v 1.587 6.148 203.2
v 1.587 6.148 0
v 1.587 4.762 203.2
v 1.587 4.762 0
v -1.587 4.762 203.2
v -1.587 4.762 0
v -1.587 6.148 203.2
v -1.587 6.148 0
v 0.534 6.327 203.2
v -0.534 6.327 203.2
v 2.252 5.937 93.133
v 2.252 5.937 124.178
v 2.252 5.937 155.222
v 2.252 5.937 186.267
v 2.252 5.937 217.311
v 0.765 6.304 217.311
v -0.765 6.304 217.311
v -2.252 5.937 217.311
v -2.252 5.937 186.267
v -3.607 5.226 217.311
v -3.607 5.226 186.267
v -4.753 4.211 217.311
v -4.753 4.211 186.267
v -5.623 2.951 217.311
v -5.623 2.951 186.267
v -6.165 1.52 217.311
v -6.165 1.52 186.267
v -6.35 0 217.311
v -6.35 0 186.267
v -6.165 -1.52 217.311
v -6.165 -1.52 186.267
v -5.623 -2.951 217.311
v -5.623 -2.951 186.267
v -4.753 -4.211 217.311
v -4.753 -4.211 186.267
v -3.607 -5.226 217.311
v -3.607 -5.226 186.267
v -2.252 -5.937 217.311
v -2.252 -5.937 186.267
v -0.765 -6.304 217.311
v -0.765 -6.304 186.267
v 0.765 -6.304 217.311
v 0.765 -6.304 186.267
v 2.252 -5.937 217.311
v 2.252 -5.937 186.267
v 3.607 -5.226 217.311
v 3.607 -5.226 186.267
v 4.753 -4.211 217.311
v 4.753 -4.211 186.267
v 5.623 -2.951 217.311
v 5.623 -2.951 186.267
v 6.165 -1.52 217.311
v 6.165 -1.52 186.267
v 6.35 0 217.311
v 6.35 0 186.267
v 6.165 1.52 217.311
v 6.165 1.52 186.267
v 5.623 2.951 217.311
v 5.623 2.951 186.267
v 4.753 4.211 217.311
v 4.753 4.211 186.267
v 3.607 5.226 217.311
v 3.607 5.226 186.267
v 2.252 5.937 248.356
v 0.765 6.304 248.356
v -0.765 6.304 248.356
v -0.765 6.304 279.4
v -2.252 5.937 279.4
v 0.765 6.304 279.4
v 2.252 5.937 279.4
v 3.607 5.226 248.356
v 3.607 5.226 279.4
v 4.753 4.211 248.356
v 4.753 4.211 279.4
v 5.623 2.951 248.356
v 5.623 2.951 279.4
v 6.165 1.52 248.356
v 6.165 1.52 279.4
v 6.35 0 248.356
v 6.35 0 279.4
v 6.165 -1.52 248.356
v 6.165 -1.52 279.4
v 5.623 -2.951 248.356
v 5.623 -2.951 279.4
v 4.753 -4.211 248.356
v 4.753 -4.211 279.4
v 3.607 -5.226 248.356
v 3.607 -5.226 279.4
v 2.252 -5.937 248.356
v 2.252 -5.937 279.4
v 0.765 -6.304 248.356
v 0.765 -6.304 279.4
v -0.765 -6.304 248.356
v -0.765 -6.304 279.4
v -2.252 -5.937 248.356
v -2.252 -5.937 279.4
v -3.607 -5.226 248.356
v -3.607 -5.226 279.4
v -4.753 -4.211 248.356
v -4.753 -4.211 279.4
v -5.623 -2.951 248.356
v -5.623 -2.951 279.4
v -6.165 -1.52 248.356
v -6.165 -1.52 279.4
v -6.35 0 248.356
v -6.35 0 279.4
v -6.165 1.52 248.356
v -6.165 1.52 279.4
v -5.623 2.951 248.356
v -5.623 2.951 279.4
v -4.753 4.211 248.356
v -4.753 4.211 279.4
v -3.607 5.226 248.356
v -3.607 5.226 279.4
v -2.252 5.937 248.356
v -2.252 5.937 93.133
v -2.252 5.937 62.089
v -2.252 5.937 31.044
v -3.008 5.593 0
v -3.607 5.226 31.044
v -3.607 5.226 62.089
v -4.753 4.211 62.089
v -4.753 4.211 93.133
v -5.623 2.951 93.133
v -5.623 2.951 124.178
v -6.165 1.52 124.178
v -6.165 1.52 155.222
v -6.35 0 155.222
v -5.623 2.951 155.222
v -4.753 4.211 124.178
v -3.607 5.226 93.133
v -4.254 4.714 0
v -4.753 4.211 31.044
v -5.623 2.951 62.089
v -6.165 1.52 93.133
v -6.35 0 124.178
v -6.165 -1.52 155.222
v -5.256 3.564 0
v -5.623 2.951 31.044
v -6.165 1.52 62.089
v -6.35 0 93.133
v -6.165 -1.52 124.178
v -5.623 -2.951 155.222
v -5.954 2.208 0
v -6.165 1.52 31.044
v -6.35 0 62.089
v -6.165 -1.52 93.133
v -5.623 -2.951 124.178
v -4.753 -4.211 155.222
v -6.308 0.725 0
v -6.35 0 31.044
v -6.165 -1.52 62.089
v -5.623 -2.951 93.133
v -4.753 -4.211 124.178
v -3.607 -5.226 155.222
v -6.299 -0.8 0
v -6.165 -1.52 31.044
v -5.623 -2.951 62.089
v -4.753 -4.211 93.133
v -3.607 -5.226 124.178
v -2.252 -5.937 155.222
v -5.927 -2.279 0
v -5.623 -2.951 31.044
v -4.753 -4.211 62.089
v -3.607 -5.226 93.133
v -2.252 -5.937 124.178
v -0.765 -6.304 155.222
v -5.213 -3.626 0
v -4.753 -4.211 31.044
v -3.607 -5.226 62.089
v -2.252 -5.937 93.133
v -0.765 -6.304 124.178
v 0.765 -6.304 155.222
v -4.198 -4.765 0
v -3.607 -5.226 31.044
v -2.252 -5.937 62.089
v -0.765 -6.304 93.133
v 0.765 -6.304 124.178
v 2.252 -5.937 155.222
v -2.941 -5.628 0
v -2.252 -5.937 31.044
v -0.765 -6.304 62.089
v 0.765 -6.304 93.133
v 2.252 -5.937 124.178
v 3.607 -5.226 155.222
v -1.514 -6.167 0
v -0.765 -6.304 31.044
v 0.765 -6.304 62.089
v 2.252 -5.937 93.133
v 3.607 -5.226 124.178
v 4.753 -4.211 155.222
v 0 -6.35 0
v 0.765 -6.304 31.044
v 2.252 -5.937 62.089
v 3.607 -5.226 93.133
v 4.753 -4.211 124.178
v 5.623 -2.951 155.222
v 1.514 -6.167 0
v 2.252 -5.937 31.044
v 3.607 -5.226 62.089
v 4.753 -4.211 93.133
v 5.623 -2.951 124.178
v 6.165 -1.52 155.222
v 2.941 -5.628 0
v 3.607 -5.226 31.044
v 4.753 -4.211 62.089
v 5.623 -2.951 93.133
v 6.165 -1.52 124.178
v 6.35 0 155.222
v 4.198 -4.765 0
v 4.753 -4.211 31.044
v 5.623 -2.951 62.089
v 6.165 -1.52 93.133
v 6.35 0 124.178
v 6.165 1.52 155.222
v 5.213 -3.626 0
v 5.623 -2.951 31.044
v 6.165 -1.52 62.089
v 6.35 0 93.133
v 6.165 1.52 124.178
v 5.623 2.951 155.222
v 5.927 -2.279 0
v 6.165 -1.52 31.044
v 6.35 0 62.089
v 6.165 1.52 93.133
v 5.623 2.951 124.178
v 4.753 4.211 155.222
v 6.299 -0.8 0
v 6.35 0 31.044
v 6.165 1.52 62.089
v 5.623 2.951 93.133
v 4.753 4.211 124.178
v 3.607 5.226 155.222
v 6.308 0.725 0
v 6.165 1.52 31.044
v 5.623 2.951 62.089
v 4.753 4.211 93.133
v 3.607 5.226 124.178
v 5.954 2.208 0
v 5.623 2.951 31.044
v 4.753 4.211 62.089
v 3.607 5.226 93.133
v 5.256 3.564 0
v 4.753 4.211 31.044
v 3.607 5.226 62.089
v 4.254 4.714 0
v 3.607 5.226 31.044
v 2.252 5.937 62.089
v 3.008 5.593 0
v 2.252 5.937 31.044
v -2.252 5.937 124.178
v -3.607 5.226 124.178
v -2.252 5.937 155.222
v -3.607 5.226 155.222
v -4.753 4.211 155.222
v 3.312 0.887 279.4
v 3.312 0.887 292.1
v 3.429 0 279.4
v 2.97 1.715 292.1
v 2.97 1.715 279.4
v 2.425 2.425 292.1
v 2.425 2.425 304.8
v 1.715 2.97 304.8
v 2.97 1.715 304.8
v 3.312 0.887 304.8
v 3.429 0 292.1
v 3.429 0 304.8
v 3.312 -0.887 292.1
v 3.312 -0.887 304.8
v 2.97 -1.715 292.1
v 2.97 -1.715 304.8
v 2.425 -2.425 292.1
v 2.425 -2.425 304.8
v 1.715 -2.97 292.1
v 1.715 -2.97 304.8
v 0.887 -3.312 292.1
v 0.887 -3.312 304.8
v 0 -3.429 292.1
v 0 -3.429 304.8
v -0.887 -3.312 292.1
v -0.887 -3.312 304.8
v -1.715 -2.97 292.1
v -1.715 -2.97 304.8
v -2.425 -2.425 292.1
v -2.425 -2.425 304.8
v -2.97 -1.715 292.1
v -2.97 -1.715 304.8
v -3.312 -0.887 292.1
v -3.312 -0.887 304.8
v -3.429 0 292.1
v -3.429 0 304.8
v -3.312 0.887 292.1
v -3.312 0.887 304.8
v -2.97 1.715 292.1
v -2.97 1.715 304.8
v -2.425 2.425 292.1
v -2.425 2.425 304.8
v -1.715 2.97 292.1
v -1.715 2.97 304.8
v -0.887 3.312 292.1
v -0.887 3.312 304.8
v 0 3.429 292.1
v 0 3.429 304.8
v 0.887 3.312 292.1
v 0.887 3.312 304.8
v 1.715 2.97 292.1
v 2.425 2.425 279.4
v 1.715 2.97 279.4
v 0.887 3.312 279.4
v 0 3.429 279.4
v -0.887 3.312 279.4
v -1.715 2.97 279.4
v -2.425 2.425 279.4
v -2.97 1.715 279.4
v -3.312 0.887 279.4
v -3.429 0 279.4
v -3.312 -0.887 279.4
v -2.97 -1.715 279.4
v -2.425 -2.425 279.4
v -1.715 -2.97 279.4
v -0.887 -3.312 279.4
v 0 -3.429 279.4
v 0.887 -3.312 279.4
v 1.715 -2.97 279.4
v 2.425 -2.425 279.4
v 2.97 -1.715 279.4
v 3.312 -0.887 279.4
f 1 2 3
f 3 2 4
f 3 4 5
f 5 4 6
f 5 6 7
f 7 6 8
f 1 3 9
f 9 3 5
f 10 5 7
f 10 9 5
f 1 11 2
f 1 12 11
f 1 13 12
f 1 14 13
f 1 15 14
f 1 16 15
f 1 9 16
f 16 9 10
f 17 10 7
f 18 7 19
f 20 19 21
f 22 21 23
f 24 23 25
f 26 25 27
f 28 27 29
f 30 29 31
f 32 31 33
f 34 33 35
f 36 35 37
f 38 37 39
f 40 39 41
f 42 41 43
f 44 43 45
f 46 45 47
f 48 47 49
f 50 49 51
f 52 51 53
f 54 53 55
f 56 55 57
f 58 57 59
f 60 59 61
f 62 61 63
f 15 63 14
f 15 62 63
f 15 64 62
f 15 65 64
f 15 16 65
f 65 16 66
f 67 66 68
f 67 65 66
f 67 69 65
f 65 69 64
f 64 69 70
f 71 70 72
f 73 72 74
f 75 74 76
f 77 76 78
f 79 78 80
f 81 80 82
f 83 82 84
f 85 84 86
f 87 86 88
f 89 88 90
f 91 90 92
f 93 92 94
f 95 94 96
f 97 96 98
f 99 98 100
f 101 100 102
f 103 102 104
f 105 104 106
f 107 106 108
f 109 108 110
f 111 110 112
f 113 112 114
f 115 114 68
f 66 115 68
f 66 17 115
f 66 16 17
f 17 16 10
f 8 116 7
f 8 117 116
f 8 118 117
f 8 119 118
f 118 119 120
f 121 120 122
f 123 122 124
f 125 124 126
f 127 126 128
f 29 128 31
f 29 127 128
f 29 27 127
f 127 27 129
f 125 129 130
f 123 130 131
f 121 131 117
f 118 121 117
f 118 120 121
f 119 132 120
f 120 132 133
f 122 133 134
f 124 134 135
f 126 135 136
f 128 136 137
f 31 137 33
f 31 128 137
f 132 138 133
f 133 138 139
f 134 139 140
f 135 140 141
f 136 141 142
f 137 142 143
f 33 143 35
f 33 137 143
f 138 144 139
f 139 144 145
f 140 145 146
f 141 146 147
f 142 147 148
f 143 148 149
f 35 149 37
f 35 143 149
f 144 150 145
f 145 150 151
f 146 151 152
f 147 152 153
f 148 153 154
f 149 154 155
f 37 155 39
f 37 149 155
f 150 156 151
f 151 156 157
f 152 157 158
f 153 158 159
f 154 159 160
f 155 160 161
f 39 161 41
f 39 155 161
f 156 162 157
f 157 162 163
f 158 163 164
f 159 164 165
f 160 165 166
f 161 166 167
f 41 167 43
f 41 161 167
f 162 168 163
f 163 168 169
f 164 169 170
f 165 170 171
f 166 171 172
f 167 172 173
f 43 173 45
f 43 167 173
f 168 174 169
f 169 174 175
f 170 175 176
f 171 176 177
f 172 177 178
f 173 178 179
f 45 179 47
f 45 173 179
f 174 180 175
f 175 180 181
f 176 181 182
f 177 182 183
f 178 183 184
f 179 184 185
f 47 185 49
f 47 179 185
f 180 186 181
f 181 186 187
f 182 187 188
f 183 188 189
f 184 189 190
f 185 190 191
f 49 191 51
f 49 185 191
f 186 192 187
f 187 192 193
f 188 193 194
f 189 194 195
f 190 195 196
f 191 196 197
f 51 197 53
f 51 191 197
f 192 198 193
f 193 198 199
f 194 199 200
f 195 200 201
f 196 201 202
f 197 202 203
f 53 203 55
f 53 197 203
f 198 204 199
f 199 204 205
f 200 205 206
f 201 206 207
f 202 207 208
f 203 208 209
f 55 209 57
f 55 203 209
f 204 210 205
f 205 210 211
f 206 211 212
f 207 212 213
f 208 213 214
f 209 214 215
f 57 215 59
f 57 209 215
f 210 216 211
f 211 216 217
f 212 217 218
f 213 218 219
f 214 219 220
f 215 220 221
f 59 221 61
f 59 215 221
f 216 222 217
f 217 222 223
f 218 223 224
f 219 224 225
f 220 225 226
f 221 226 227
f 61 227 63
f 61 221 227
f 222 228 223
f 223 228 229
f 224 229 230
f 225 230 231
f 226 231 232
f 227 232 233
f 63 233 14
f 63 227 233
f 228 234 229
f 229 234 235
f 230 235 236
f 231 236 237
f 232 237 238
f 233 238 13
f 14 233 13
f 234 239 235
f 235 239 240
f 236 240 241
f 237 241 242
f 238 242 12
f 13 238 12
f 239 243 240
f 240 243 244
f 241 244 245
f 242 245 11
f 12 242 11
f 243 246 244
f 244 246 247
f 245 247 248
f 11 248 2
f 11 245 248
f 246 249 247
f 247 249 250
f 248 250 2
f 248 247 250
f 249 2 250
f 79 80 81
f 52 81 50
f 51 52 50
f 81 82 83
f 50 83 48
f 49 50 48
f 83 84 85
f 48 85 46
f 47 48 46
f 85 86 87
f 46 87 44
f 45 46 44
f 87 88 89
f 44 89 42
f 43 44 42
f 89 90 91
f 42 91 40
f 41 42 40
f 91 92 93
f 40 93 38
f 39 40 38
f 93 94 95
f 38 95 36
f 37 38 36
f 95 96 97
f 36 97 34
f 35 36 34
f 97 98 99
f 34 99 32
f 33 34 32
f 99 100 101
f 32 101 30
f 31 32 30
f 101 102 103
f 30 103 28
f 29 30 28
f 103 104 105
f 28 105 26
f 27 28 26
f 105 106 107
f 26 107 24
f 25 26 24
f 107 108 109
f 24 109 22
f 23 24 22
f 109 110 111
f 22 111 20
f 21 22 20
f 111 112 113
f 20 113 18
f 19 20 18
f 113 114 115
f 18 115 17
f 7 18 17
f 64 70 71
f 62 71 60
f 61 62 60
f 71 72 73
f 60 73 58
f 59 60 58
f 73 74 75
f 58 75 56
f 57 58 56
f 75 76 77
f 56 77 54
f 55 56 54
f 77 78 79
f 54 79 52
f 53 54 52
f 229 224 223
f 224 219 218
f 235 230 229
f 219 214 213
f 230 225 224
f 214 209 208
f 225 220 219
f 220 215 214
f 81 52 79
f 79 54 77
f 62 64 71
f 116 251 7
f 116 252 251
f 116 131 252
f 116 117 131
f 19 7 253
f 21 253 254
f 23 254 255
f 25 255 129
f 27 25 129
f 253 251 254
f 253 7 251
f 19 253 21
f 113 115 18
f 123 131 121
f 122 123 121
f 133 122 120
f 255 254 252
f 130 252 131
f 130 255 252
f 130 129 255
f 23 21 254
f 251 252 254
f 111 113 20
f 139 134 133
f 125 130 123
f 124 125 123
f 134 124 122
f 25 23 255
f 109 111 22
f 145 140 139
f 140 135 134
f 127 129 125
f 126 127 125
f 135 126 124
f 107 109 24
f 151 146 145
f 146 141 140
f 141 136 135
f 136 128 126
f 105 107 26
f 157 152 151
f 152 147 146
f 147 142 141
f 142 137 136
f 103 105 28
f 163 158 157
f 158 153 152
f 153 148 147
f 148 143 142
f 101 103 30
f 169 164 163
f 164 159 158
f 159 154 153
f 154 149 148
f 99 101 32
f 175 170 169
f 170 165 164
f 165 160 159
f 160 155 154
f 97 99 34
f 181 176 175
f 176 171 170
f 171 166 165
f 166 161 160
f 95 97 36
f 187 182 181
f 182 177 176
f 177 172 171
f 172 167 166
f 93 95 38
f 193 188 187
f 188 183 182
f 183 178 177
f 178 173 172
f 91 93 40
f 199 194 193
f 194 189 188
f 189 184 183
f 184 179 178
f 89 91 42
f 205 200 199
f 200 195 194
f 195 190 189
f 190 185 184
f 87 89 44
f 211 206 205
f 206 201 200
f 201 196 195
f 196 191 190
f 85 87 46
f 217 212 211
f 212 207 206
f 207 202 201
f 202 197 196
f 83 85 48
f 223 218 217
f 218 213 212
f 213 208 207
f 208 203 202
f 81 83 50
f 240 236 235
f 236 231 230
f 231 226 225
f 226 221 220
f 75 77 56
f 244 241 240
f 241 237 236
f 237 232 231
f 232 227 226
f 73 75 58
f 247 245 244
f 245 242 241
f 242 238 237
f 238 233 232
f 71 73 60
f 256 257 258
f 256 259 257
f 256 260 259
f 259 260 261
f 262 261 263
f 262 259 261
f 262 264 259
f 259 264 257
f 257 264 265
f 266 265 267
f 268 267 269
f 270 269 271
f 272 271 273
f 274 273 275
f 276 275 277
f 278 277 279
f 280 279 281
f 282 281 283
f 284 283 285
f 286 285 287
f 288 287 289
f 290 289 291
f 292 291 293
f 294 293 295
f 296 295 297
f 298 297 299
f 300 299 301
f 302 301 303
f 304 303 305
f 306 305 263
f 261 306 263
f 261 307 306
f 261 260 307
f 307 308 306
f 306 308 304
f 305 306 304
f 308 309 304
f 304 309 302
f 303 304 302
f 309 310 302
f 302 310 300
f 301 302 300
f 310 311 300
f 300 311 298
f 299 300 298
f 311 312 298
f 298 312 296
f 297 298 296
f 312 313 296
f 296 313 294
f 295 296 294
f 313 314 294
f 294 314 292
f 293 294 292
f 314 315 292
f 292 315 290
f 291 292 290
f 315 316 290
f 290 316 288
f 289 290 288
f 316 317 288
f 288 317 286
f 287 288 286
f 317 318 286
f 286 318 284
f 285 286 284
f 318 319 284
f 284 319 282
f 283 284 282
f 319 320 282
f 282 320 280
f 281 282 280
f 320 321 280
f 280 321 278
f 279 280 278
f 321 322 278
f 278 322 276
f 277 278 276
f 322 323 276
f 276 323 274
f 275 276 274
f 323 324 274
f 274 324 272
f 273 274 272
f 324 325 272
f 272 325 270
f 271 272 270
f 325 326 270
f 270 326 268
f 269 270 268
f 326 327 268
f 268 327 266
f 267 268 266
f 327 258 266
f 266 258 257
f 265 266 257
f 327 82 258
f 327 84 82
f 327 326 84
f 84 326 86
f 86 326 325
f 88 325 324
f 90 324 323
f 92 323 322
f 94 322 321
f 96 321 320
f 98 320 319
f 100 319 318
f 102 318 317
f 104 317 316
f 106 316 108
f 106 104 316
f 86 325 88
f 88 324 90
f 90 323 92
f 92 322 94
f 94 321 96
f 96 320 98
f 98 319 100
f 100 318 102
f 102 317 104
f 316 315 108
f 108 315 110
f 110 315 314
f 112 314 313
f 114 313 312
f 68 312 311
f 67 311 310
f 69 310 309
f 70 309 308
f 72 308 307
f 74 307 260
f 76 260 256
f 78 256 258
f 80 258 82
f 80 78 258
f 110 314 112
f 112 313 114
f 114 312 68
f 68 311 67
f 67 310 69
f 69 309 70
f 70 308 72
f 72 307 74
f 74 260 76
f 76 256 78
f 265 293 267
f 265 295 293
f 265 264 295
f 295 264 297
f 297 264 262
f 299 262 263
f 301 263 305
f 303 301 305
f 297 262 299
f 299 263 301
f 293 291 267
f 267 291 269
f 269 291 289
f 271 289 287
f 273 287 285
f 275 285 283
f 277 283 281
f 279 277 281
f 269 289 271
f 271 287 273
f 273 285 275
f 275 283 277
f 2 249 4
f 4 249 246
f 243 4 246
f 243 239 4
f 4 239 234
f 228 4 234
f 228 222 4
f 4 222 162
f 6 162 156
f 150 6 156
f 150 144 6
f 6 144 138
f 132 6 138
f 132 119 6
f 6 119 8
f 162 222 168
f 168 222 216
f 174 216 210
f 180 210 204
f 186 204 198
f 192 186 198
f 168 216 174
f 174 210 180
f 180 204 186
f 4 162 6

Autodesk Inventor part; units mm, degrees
ref_plane "YZ Plane" through (0, 0, 0) normal (1, 0, 0) x (0, 1, 0)
ref_plane "XZ Plane" through (0, 0, 0) normal (0, 1, 0) x (-1, 0, 0)
ref_plane "XY Plane" through (0, 0, 0) normal (0, 0, 1) x (1, 0, 0)
sketch "Sketch1" plane through (0, 0, 0) normal (0, 0, 1) x (1, 0, 0)
  circle A0 centre (0, 0) radius 6.35
  dimension "d0" = 12.7
extrude "Extrusion1" add sketch "Sketch1" along normal blind 304.8
sketch "Sketch2" plane through (0, 0, 304.8) normal (0, 0, 1) x (1, 0, 0)
  circle A0 centre (0, 0) radius 6.35 projected
  circle A1 centre (0, 0) radius 3.429
  circle A2 centre (0, 0) radius 6.35
  dimension "d3" = 6.858
extrude "Extrusion2" cut sketch "Sketch2" against normal blind 25.4
sketch "Sketch3" plane through (0, 0, 0) normal (0, 0, -1) x (-1, 0, 0)
  circle A0 centre (0, 0) radius 6.35 projected
  arc A1 (1.5875, 6.1484) -> (-1.5875, 6.1484) centre (0, 0) ccw
  line L0 (-1.5875, 6.1484) -> (-1.5875, 4.7625)
  line L1 (-1.5875, 4.7625) -> (1.5875, 4.7625)
  line L2 (1.5875, 4.7625) -> (1.5875, 6.1484)
  line L3 (0, 6.35) -> (1.0636, 6.35) construction
  dimension "d6" = 3.175
  dimension "d7" = 1.5875
extrude "Extrusion3" cut sketch "Sketch3" against normal blind 203.2 contours L2 L1 L0 A0 picked at (0.1781, 5.2842)
properties part number "ShooterAxle" material "Steel"
